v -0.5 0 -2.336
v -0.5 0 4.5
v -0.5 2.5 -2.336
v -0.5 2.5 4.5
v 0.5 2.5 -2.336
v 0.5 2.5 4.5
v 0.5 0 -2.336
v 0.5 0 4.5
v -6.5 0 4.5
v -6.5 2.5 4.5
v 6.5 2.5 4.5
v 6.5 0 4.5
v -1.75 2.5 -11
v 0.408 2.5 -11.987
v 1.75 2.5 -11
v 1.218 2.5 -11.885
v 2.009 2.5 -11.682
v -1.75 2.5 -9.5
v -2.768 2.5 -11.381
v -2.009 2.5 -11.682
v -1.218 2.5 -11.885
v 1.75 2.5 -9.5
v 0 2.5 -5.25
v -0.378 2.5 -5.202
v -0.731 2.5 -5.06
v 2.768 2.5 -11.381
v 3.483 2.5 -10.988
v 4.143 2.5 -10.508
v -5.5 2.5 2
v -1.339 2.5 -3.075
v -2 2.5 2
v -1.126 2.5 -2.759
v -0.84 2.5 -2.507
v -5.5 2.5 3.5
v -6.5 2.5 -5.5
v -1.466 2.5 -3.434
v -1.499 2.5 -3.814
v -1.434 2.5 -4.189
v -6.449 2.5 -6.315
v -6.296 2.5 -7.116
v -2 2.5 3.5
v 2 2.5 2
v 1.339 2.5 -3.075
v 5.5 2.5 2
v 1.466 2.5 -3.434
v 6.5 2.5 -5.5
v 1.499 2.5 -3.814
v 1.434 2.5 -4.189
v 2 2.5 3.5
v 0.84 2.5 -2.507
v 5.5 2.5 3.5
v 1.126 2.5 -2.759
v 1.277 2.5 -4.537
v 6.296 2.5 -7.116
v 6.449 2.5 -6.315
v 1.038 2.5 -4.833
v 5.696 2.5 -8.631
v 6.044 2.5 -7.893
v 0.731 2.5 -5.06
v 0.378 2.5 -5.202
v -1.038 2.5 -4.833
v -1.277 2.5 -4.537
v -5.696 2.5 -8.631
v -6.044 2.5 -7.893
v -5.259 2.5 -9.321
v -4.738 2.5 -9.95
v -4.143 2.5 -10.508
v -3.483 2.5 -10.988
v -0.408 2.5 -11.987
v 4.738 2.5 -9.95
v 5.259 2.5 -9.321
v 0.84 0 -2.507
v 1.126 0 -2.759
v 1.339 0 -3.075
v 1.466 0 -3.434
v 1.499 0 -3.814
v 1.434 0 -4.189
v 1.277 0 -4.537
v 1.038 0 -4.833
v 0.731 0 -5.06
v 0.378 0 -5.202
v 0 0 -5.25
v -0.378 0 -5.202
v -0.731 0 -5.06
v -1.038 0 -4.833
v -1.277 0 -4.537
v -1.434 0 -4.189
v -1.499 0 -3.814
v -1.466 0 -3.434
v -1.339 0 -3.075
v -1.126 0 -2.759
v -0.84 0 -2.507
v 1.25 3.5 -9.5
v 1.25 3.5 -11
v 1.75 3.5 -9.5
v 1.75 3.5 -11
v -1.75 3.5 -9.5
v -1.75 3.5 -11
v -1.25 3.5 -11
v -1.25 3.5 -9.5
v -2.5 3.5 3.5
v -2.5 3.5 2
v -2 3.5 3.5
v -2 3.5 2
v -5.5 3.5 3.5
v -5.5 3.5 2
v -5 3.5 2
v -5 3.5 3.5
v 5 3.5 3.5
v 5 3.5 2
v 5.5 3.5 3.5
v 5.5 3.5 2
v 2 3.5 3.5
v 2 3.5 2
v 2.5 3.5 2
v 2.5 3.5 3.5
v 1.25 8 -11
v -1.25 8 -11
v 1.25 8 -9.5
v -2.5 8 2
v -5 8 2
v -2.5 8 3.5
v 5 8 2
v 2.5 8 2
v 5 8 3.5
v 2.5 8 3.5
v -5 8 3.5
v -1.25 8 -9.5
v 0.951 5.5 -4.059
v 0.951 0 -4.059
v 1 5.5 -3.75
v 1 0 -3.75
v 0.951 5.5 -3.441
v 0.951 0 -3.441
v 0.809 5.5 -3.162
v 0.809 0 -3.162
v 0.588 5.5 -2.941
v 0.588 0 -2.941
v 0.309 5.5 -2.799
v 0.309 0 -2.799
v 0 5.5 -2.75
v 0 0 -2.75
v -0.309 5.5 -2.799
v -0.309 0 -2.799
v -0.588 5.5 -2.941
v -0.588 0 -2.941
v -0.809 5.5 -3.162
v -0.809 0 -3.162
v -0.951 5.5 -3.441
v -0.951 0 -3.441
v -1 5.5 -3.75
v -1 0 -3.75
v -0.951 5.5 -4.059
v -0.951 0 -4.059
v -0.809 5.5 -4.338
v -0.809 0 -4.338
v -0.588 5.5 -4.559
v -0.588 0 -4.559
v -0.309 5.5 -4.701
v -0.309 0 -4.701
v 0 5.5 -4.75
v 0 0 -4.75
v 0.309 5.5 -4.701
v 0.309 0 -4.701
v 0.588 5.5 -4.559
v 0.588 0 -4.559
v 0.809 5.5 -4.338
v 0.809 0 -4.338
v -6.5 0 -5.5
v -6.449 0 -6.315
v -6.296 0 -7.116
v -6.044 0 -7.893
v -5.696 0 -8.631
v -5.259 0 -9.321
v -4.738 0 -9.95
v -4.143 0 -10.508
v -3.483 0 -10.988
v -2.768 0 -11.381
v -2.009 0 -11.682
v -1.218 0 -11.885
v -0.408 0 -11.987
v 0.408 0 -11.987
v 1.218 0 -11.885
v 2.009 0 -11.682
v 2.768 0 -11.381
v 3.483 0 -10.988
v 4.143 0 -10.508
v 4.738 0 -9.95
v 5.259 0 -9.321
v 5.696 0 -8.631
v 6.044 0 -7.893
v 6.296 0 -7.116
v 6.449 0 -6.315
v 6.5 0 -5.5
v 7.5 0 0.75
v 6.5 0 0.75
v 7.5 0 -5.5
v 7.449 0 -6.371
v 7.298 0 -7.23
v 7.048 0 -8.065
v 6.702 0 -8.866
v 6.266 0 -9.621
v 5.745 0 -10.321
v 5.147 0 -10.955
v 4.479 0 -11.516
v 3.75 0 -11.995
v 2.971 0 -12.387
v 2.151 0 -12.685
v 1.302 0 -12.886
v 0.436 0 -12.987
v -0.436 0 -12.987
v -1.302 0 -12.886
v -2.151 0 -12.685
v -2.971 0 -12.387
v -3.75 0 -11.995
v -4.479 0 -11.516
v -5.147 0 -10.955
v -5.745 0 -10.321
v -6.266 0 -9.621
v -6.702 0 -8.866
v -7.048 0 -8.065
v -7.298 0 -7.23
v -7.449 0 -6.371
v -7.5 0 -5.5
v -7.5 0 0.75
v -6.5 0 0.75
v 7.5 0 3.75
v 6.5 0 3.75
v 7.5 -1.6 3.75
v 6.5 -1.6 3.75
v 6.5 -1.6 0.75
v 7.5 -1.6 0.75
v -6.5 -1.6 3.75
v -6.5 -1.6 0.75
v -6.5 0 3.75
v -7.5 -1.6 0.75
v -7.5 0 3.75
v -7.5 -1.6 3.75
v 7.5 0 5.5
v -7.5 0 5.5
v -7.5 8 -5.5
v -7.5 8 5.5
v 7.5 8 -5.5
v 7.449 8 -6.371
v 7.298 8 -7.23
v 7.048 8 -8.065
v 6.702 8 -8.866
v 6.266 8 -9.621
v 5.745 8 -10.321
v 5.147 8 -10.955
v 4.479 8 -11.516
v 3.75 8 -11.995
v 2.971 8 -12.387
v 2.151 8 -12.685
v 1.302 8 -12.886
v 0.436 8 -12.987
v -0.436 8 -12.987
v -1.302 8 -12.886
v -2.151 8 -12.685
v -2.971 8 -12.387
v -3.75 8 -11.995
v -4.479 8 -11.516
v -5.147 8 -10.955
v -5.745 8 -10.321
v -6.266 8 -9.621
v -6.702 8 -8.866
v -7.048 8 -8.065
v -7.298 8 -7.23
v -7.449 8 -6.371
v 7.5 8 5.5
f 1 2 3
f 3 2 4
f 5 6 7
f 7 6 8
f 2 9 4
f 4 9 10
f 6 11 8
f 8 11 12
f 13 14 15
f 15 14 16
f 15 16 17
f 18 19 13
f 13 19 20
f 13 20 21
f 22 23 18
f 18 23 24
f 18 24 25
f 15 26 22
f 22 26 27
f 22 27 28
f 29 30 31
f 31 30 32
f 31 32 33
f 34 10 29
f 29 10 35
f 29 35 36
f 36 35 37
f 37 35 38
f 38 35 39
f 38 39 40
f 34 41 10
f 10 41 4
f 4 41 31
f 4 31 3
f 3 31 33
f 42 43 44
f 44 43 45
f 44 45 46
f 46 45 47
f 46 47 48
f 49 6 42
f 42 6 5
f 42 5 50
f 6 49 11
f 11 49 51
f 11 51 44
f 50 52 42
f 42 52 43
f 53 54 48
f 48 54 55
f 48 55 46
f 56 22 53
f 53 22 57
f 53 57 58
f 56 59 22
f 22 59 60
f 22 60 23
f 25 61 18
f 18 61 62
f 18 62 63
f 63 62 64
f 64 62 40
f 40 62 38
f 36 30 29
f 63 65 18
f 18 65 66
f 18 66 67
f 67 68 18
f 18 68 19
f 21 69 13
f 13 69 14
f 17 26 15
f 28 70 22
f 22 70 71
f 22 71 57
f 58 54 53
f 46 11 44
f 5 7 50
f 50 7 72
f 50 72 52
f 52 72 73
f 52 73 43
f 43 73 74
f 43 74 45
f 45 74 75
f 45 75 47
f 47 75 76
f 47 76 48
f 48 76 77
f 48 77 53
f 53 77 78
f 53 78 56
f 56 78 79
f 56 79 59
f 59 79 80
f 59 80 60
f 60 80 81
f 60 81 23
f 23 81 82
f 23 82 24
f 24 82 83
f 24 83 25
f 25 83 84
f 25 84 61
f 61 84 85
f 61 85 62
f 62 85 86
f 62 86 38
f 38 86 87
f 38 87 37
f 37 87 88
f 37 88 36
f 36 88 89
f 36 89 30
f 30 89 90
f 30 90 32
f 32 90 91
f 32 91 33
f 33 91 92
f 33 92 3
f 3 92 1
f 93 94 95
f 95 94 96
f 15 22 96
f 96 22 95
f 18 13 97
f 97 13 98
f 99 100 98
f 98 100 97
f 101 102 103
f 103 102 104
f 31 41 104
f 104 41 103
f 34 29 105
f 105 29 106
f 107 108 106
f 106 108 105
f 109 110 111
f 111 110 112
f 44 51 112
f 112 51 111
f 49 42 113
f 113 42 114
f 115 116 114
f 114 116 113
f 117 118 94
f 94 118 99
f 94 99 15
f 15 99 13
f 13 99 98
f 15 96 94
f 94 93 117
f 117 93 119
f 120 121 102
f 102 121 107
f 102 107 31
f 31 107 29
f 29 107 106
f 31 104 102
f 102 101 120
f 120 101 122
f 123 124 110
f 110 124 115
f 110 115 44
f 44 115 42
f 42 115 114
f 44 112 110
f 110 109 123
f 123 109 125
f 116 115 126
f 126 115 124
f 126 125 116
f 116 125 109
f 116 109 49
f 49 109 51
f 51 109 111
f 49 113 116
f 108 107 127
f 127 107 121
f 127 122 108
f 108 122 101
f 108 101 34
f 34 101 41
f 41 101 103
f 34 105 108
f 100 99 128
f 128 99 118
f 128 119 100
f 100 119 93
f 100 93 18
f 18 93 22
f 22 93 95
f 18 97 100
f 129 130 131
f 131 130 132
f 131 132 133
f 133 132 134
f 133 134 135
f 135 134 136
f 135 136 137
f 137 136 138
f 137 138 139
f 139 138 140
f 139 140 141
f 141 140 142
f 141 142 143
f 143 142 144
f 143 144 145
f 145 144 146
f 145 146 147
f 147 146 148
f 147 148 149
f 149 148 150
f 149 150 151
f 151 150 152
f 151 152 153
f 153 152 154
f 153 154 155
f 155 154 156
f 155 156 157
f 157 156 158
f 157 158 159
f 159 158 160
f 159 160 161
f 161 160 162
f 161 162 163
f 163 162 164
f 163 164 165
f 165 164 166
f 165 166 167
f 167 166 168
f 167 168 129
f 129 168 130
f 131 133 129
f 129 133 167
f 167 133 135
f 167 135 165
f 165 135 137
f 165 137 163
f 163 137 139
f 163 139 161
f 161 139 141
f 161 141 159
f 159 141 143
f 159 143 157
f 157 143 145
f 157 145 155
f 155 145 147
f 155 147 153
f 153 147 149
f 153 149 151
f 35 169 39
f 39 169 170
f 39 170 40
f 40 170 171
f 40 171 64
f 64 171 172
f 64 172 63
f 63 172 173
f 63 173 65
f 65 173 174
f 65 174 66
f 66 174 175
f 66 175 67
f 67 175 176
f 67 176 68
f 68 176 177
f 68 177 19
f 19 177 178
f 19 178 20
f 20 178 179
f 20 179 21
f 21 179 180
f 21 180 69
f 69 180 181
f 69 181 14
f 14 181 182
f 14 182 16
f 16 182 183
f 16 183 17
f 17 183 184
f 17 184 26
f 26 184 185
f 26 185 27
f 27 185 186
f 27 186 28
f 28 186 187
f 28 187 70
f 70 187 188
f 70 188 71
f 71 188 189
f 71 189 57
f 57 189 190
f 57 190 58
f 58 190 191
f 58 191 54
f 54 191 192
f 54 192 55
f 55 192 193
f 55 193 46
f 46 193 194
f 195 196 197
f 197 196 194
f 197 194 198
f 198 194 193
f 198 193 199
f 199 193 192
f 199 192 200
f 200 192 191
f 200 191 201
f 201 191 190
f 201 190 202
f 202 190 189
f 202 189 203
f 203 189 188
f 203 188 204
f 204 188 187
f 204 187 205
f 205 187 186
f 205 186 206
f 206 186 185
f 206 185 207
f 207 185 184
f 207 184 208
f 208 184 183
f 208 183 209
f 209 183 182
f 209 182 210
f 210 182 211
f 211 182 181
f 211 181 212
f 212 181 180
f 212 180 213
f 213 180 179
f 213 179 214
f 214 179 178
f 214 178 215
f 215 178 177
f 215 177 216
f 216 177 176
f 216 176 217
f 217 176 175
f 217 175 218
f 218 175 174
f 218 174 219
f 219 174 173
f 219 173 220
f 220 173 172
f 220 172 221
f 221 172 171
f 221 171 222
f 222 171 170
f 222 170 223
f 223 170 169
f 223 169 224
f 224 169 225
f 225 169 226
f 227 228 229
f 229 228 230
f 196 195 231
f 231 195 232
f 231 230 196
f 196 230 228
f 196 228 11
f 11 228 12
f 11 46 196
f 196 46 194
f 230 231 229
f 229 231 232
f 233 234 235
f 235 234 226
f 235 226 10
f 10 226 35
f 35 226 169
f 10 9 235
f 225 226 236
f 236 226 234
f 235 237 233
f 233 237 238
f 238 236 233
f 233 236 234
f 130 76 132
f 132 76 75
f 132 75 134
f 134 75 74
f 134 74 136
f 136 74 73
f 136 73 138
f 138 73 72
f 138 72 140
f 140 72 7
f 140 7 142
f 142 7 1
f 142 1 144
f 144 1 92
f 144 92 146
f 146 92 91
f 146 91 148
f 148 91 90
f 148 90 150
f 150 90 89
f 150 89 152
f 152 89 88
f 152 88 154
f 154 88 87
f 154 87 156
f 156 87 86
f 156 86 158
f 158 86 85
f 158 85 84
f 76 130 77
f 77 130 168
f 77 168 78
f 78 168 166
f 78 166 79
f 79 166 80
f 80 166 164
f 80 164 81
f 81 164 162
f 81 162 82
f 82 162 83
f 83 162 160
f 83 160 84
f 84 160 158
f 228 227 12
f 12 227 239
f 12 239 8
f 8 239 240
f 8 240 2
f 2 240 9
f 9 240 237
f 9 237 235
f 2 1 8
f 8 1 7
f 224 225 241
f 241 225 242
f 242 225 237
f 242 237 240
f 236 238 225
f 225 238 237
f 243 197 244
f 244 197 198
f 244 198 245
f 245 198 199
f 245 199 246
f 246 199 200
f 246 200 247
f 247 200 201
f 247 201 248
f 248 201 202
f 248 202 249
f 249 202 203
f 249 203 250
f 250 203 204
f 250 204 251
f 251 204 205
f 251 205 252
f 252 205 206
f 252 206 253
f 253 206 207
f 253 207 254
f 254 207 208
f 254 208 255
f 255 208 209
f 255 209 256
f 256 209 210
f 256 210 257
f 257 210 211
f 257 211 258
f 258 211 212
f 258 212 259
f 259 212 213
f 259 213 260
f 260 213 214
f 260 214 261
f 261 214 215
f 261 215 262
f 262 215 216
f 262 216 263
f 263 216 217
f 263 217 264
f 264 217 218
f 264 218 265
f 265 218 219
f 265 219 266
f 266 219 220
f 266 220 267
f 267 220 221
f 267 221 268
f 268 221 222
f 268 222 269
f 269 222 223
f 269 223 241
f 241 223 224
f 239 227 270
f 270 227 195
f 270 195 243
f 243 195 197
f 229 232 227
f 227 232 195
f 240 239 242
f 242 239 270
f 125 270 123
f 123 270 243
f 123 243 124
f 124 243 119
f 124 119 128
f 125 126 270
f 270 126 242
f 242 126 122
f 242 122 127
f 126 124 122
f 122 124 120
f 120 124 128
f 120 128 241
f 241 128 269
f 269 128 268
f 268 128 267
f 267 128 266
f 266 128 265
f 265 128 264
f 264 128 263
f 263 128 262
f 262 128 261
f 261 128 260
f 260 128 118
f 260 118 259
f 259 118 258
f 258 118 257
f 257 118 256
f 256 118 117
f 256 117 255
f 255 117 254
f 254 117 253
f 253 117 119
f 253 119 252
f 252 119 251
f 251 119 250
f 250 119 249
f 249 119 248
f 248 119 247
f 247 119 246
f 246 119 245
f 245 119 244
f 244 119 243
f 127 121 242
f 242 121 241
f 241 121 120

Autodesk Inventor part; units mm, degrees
ref_plane "YZ Plane" through (0, 0, 0) normal (1, 0, 0) x (0, 1, 0)
ref_plane "XZ Plane" through (0, 0, 0) normal (0, 1, 0) x (-1, 0, 0)
ref_plane "XY Plane" through (0, 0, 0) normal (0, 0, 1) x (1, 0, 0)
sketch "Sketch1" plane through (0, 0, 0) normal (0, 1, 0) x (-1, 0, 0)
  line L0 (-7.5, 5.5) -> (7.5, 5.5)
  line L1 (7.5, 5.5) -> (7.5, -5.5)
  line L2 (7.5, -5.5) -> (-7.5, -5.5)
  line L3 (-7.5, -5.5) -> (-7.5, 5.5)
  line L4 (-7.5, 5.5) -> (7.5, -5.5) construction
  line L5 (7.5, 5.5) -> (-7.5, -5.5) construction
  circle A0 centre (0, -5.5) radius 7.5 construction
  arc A1 (-7.5, -5.5) -> (7.5, -5.5) centre (0, -5.5) ccw
  point P0 (0, 0)
  dimension "d0" = 11
  dimension "d1" = 15
extrude "Extrusion1" add sketch "Sketch1" along normal blind 8
sketch "Sketch2" plane through (0, 0, 0) normal (0, -1, 0) x (1, 0, 0)
  line L0 (7.5, 9.25) -> (-7.5, 9.25)
  line L1 (-7.5, 9.25) -> (-7.5, -20.75)
  line L2 (-7.5, -20.75) -> (7.5, -20.75)
  line L3 (7.5, -20.75) -> (7.5, 9.25)
  line L4 (7.5, 9.25) -> (-7.5, -20.75) construction
  line L5 (-7.5, 9.25) -> (7.5, -20.75) construction
  line L6 (-7.5, 5.5) -> (7.5, 5.5) projected
  line L7 (7, 8.75) -> (-7, 8.75) construction
  line L8 (-7, 8.75) -> (-7, -20.25) construction
  line L9 (-7, -20.25) -> (7, -20.25) construction
  line L10 (7, -20.25) -> (7, 8.75) construction
  line L11 (7, 8.75) -> (-7, -20.25) construction
  line L12 (-7, 8.75) -> (7, -20.25) construction
  point P0 (0, 0)
  point P1 (0, -5.75)
  dimension "d4" = 15
  dimension "d5" = 30
  dimension "d6" = 3.75
  dimension "d18" = 0.5
  dimension "d19" = 0.5
sketch "Sketch4" plane through (0, 0, 0) normal (0, -1, 0) x (1, 0, 0)
  line L0 (-7.5, -5.5) -> (-7.5, 5.5) projected
  line L1 (-7.5, 3.75) -> (-6.5, 3.75)
  line L2 (-6.5, 3.75) -> (-6.5, 0.75)
  line L3 (-6.5, 0.75) -> (-7.5, 0.75)
  line L4 (-7.5, 0.75) -> (-7.5, 3.75)
  line L5 (7.5, 5.5) -> (7.5, -5.5) projected
  line L6 (7.5, 0.75) -> (6.5, 0.75)
  line L7 (6.5, 0.75) -> (6.5, 3.75)
  line L8 (6.5, 3.75) -> (7.5, 3.75)
  line L9 (7.5, 3.75) -> (7.5, 0.75)
  line L10 (-7.5, -20.25) -> (7.5, -20.25) construction
  line L11 (7.5, -20.25) -> (7.5, 9.75) construction
  line L12 (7.5, 9.75) -> (-7.5, 9.75) construction
  line L13 (-7.5, 9.75) -> (-7.5, -20.25) construction
  line L14 (-7.5, -20.25) -> (7.5, 9.75) construction
  line L15 (7.5, -20.25) -> (-7.5, 9.75) construction
  line L16 (-7.5, 5.5) -> (7.5, 5.5) construction
  arc A0 (-7.5, -5.5) -> (7.5, -5.5) centre (0, -5.5) ccw construction
  point P0 (0, 0)
  point P1 (0, -5.25)
  point P2 (0, -13)
  point P3 (-7, 3.75)
  point P4 (-7.5, 0.75)
  point P5 (-7, 0.75)
  point P6 (7.5, 3.75)
  point P7 (-7.5, 0.75)
  dimension "d20" = 1
  dimension "d21" = 3
  dimension "d22" = 1
  dimension "d23" = 3
  dimension "d24" = 15
  dimension "d25" = 30
  dimension "d27" = 7.25
  dimension "d106" = 0.75
extrude "Extrusion3" add sketch "Sketch4" along normal blind 1.6
sketch "Sketch6" plane through (0, 0, 0) normal (0, -1, 0) x (1, 0, 0)
  line L0 (7.5, 11.25) -> (-7.5, 11.25)
  line L1 (-7.5, 11.25) -> (-7.5, -18.75)
  line L2 (-7.5, -18.75) -> (7.5, -18.75)
  line L3 (7.5, -18.75) -> (7.5, 11.25)
  line L4 (7.5, 11.25) -> (-7.5, -18.75) construction
  line L5 (-7.5, 11.25) -> (7.5, -18.75) construction
  line L6 (7, 10.75) -> (-7, 10.75) construction
  line L7 (-7, 10.75) -> (-7, -18.25) construction
  line L8 (-7, -18.25) -> (7, -18.25) construction
  line L9 (7, -18.25) -> (7, 10.75) construction
  line L10 (7, 10.75) -> (-7, -18.25) construction
  line L11 (-7, 10.75) -> (7, -18.25) construction
  circle A0 centre (0, -3.75) radius 1
  circle A1 centre (0, -3.75) radius 1.5
  line L12 (-6.5, 4.5) -> (6.5, 4.5)
  line L13 (6.5, 4.5) -> (6.5, -5.5)
  line L14 (6.5, -5.5) -> (-6.5, -5.5)
  line L15 (-6.5, -5.5) -> (-6.5, 4.5)
  line L16 (-7.5, 5.5) -> (7.5, 5.5) projected
  arc A2 (-7.5, -5.5) -> (7.5, -5.5) centre (0, -5.5) ccw projected
  circle A3 centre (0, -5.5) radius 6.5
  point P0 (0, 0)
  point P1 (-7.5, -3.75)
  point P2 (6.5, -5.5)
  dimension "d31" = 15
  dimension "d32" = 30
  dimension "d34" = 0.5
  dimension "d35" = 0.5
  dimension "d36" = 2
  dimension "d37" = 0.5
  dimension "d38" = 1
  dimension "d39" = 1
  dimension "d40" = 1
  dimension "d41" = 1
  dimension "d107" = 3.75
extrude "Extrusion4" cut sketch "Sketch6" against normal blind 2.5 contours A0 | L12 L13 A3 L15 | A3 L14 | L14 A3
sketch "Sketch10" plane through (0, 8, 0) normal (0, 1, 0) x (1, 0, 0)
  point P0 (0, 0)
sketch "Sketch11" plane through (0, 0, 0) normal (0, -1, 0) x (1, 0, 0)
  line L0 (-5, 3.5) -> (-2.5, 3.5)
  line L1 (-2.5, 3.5) -> (-2.5, 2)
  line L2 (-2.5, 2) -> (-5, 2)
  line L3 (-5, 2) -> (-5, 3.5)
  line L4 (2.5, 3.5) -> (5, 3.5)
  line L5 (5, 3.5) -> (5, 2)
  line L6 (5, 2) -> (2.5, 2)
  line L7 (2.5, 2) -> (2.5, 3.5)
  line L8 (-6.5, 3.75) -> (-7.5, 3.75) projected
  line L9 (-6.5, 0.75) -> (-6.5, 3.75) projected
  line L10 (6.5, 3.75) -> (6.5, 0.75) projected
  line L11 (-6.5, 4.5) -> (6.5, 4.5) projected
  line L12 (-1.25, -11) -> (1.25, -11)
  line L13 (1.25, -11) -> (1.25, -9.5)
  line L14 (1.25, -9.5) -> (-1.25, -9.5)
  line L15 (-1.25, -9.5) -> (-1.25, -11)
  circle A0 centre (0, -3.75) radius 1 projected
  point P0 (0, 0)
  point P1 (-3.75, 3.5)
  point P2 (3.75, 3.5)
  point P3 (1.25, -10.25)
  point P4 (2.5, 2.75)
  point P5 (0, -9.5)
  point P6 (3.75, 2)
  point P7 (-2.5, 2.75)
  dimension "d51" = 2.5
  dimension "d52" = 1.5
  dimension "d55" = 2.75
  dimension "d56" = 2.75
  dimension "d60" = 13
  dimension "d61" = 3.75
  dimension "d62" = 3.75
  dimension "d103" = 6.5
  dimension "d104" = 6.5
extrude "Extrusion8" cut sketch "Sketch11" against normal blind 10 contours L0 L1 L2 L3 | L4 L5 L6 L7 | L15 L14 L13 L12
sketch "Sketch12" plane through (0, 2.5, 0) normal (0, -1, 0) x (1, 0, 0)
  line L0 (5, 2) -> (5, 3.5) construction
  line L1 (2.5, 2) -> (5, 2) construction
  line L2 (5, 3.5) -> (2.5, 3.5) construction
  line L3 (2.5, 3.5) -> (2.5, 2) construction
  line L4 (2.5, 2) -> (5, 2) construction
  line L5 (5, 2) -> (5, 3.5) construction
  line L6 (-2.5, 2) -> (-2.5, 3.5) construction
  line L7 (-2.5, 2) -> (-5, 2) construction
  line L8 (-2.5, 3.5) -> (-5, 3.5) construction
  line L9 (-5, 3.5) -> (-5, 2) construction
  line L10 (-5, 2) -> (-2.5, 2) construction
  line L11 (-2.5, 2) -> (-2.5, 3.5) construction
  line L12 (-1.25, -9.5) -> (1.25, -9.5) construction
  line L13 (-1.25, -9.5) -> (-1.25, -11) construction
  line L14 (1.25, -9.5) -> (-1.25, -9.5) construction
  line L15 (-1.25, -9.5) -> (-1.25, -11) construction
  line L16 (-1.25, -11) -> (1.25, -11) construction
  line L17 (1.25, -11) -> (1.25, -9.5) construction
  line L18 (5.5, 3.5) -> (2, 3.5)
  line L19 (2, 3.5) -> (2, 2)
  line L20 (2, 2) -> (5.5, 2)
  line L21 (5.5, 2) -> (5.5, 3.5)
  line L22 (1.75, -9.5) -> (-1.75, -9.5)
  line L23 (-1.75, -9.5) -> (-1.75, -11)
  line L24 (-1.75, -11) -> (1.75, -11)
  line L25 (1.75, -11) -> (1.75, -9.5)
  line L26 (-2, 3.5) -> (-5.5, 3.5)
  line L27 (-5.5, 3.5) -> (-5.5, 2)
  line L28 (-5.5, 2) -> (-2, 2)
  line L29 (-2, 2) -> (-2, 3.5)
  point P0 (0, 0)
  point P1 (-2.5, 2.75)
  point P2 (-2, 2.75)
  point P3 (-3.75, 2)
  point P4 (-3.75, 2)
  point P5 (-3.75, 3.5)
  point P6 (-3.75, 3.5)
  point P7 (-5, 2.75)
  point P8 (-5.5, 2.75)
  point P9 (1.25, -10.25)
  point P10 (1.75, -10.25)
  point P11 (0, -11)
  point P12 (-1.25, -10.25)
  dimension "d63" = 0.5
  dimension "d64" = 0
  dimension "d65" = 0
  dimension "d67" = 0.5
  dimension "d68" = 0
  dimension "d69" = 0
  dimension "d70" = 0.5
  dimension "d71" = 0.5
  dimension "d72" = 0
  dimension "d73" = 0
  dimension "d74" = 0.5
  dimension "d96" = 0.5
extrude "Extrusion9" cut sketch "Sketch12" against normal blind 1
sketch "Sketch16" plane through (0, 2.5, 0) normal (0, -1, 0) x (1, 0, 0)
  line L0 (-6.5, -5.5) -> (-6.5, 4.5) construction
  line L1 (-6.5, 4.5) -> (6.5, 4.5) construction
  line L2 (-6.5, 4.5) -> (6.5, 4.5) construction
  line L3 (-0.5, 4.5) -> (0.5, 4.5)
  line L4 (0.5, 4.5) -> (0.5, -2.75)
  line L5 (0.5, -2.75) -> (-0.5, -2.75)
  line L6 (-0.5, -2.75) -> (-0.5, 4.5)
  circle A0 centre (0, -3.75) radius 1.5 construction
  circle A1 centre (0, -3.75) radius 1.75 construction
  line L7 (-6.5, -2.75) -> (6.5174, -2.75) construction
  circle A2 centre (0, -3.75) radius 1.5 construction
  circle A3 centre (0, -3.75) radius 1 construction
  line L8 (6.5, 0.75) -> (6.5, -5.5) projected
  line L9 (-6.5, -5.873) -> (6.5, -5.873)
  line L10 (6.5, -5.873) -> (6.5, -6.873)
  line L11 (6.5, -6.873) -> (-6.5, -6.873)
  line L12 (-6.5, -6.873) -> (-6.5, -5.873)
  point P0 (0, 0)
  point P1 (0, 4.5)
  point P2 (0.0087, -2.75)
  dimension "d94" = 1
  dimension "d95" = 1
extrude "Extrusion10" add sketch "Sketch16" along normal blind 2.5 contours L3 L4 L5 L6
sketch "Sketch18" plane through (0, 2.5, -3.75) normal (0, -1, 0) x (1, 0, 0)
  circle A0 centre (0, 0) radius 1 projected
  circle A1 centre (0, 0) radius 1
  point P0 (0, 3.75)
extrude "Extrusion12" cut sketch "Sketch18" against normal blind 3
sketch "Sketch14" plane through (0, 2.5, 0) normal (0, -1, 0) x (1, 0, 0)
  line L0 (5, 2.75) -> (2.5, 2.75) construction
  line L1 (2.5, 2.75) -> (2.5, 1.25) construction
  line L2 (2.5, 1.25) -> (5, 1.25) construction
  line L3 (5, 1.25) -> (5, 2.75) construction
  line L4 (5.5, 3.25) -> (2, 3.25)
  line L5 (2, 3.25) -> (2, 0.75)
  line L6 (2, 0.75) -> (5.5, 0.75)
  line L7 (5.5, 0.75) -> (5.5, 3.25)
  dimension "d86" = 0.5
  dimension "d87" = 0.5
sketch "Sketch15" plane through (0, 3.5, 0) normal (0, -1, 0) x (1, 0, 0)
  line L0 (5, 2.75) -> (2.5, 2.75)
  line L1 (2.5, 2.75) -> (2.5, 1.25)
  line L2 (2.5, 1.25) -> (5, 1.25)
  line L3 (5, 1.25) -> (5, 2.75)
  point P0 (0, 0)
sketch "Sketch8" plane through (0, 0, -3.75) normal (0, -1, 0) x (1, 0, 0)
  circle A0 centre (0, 0) radius 1.75
  circle A1 centre (0, 0) radius 1.5 projected
  circle A2 centre (0, 0) radius 1.5
  point P0 (0, 3.75)
  dimension "d46" = 0.25
sketch "Sketch7" plane through (0, 2.5, -3.75) normal (0, -1, 0) x (1, 0, 0)
  circle A0 centre (0, 0) radius 1.25
  point P0 (0, 3.75)
properties part number "ANDGATE"
